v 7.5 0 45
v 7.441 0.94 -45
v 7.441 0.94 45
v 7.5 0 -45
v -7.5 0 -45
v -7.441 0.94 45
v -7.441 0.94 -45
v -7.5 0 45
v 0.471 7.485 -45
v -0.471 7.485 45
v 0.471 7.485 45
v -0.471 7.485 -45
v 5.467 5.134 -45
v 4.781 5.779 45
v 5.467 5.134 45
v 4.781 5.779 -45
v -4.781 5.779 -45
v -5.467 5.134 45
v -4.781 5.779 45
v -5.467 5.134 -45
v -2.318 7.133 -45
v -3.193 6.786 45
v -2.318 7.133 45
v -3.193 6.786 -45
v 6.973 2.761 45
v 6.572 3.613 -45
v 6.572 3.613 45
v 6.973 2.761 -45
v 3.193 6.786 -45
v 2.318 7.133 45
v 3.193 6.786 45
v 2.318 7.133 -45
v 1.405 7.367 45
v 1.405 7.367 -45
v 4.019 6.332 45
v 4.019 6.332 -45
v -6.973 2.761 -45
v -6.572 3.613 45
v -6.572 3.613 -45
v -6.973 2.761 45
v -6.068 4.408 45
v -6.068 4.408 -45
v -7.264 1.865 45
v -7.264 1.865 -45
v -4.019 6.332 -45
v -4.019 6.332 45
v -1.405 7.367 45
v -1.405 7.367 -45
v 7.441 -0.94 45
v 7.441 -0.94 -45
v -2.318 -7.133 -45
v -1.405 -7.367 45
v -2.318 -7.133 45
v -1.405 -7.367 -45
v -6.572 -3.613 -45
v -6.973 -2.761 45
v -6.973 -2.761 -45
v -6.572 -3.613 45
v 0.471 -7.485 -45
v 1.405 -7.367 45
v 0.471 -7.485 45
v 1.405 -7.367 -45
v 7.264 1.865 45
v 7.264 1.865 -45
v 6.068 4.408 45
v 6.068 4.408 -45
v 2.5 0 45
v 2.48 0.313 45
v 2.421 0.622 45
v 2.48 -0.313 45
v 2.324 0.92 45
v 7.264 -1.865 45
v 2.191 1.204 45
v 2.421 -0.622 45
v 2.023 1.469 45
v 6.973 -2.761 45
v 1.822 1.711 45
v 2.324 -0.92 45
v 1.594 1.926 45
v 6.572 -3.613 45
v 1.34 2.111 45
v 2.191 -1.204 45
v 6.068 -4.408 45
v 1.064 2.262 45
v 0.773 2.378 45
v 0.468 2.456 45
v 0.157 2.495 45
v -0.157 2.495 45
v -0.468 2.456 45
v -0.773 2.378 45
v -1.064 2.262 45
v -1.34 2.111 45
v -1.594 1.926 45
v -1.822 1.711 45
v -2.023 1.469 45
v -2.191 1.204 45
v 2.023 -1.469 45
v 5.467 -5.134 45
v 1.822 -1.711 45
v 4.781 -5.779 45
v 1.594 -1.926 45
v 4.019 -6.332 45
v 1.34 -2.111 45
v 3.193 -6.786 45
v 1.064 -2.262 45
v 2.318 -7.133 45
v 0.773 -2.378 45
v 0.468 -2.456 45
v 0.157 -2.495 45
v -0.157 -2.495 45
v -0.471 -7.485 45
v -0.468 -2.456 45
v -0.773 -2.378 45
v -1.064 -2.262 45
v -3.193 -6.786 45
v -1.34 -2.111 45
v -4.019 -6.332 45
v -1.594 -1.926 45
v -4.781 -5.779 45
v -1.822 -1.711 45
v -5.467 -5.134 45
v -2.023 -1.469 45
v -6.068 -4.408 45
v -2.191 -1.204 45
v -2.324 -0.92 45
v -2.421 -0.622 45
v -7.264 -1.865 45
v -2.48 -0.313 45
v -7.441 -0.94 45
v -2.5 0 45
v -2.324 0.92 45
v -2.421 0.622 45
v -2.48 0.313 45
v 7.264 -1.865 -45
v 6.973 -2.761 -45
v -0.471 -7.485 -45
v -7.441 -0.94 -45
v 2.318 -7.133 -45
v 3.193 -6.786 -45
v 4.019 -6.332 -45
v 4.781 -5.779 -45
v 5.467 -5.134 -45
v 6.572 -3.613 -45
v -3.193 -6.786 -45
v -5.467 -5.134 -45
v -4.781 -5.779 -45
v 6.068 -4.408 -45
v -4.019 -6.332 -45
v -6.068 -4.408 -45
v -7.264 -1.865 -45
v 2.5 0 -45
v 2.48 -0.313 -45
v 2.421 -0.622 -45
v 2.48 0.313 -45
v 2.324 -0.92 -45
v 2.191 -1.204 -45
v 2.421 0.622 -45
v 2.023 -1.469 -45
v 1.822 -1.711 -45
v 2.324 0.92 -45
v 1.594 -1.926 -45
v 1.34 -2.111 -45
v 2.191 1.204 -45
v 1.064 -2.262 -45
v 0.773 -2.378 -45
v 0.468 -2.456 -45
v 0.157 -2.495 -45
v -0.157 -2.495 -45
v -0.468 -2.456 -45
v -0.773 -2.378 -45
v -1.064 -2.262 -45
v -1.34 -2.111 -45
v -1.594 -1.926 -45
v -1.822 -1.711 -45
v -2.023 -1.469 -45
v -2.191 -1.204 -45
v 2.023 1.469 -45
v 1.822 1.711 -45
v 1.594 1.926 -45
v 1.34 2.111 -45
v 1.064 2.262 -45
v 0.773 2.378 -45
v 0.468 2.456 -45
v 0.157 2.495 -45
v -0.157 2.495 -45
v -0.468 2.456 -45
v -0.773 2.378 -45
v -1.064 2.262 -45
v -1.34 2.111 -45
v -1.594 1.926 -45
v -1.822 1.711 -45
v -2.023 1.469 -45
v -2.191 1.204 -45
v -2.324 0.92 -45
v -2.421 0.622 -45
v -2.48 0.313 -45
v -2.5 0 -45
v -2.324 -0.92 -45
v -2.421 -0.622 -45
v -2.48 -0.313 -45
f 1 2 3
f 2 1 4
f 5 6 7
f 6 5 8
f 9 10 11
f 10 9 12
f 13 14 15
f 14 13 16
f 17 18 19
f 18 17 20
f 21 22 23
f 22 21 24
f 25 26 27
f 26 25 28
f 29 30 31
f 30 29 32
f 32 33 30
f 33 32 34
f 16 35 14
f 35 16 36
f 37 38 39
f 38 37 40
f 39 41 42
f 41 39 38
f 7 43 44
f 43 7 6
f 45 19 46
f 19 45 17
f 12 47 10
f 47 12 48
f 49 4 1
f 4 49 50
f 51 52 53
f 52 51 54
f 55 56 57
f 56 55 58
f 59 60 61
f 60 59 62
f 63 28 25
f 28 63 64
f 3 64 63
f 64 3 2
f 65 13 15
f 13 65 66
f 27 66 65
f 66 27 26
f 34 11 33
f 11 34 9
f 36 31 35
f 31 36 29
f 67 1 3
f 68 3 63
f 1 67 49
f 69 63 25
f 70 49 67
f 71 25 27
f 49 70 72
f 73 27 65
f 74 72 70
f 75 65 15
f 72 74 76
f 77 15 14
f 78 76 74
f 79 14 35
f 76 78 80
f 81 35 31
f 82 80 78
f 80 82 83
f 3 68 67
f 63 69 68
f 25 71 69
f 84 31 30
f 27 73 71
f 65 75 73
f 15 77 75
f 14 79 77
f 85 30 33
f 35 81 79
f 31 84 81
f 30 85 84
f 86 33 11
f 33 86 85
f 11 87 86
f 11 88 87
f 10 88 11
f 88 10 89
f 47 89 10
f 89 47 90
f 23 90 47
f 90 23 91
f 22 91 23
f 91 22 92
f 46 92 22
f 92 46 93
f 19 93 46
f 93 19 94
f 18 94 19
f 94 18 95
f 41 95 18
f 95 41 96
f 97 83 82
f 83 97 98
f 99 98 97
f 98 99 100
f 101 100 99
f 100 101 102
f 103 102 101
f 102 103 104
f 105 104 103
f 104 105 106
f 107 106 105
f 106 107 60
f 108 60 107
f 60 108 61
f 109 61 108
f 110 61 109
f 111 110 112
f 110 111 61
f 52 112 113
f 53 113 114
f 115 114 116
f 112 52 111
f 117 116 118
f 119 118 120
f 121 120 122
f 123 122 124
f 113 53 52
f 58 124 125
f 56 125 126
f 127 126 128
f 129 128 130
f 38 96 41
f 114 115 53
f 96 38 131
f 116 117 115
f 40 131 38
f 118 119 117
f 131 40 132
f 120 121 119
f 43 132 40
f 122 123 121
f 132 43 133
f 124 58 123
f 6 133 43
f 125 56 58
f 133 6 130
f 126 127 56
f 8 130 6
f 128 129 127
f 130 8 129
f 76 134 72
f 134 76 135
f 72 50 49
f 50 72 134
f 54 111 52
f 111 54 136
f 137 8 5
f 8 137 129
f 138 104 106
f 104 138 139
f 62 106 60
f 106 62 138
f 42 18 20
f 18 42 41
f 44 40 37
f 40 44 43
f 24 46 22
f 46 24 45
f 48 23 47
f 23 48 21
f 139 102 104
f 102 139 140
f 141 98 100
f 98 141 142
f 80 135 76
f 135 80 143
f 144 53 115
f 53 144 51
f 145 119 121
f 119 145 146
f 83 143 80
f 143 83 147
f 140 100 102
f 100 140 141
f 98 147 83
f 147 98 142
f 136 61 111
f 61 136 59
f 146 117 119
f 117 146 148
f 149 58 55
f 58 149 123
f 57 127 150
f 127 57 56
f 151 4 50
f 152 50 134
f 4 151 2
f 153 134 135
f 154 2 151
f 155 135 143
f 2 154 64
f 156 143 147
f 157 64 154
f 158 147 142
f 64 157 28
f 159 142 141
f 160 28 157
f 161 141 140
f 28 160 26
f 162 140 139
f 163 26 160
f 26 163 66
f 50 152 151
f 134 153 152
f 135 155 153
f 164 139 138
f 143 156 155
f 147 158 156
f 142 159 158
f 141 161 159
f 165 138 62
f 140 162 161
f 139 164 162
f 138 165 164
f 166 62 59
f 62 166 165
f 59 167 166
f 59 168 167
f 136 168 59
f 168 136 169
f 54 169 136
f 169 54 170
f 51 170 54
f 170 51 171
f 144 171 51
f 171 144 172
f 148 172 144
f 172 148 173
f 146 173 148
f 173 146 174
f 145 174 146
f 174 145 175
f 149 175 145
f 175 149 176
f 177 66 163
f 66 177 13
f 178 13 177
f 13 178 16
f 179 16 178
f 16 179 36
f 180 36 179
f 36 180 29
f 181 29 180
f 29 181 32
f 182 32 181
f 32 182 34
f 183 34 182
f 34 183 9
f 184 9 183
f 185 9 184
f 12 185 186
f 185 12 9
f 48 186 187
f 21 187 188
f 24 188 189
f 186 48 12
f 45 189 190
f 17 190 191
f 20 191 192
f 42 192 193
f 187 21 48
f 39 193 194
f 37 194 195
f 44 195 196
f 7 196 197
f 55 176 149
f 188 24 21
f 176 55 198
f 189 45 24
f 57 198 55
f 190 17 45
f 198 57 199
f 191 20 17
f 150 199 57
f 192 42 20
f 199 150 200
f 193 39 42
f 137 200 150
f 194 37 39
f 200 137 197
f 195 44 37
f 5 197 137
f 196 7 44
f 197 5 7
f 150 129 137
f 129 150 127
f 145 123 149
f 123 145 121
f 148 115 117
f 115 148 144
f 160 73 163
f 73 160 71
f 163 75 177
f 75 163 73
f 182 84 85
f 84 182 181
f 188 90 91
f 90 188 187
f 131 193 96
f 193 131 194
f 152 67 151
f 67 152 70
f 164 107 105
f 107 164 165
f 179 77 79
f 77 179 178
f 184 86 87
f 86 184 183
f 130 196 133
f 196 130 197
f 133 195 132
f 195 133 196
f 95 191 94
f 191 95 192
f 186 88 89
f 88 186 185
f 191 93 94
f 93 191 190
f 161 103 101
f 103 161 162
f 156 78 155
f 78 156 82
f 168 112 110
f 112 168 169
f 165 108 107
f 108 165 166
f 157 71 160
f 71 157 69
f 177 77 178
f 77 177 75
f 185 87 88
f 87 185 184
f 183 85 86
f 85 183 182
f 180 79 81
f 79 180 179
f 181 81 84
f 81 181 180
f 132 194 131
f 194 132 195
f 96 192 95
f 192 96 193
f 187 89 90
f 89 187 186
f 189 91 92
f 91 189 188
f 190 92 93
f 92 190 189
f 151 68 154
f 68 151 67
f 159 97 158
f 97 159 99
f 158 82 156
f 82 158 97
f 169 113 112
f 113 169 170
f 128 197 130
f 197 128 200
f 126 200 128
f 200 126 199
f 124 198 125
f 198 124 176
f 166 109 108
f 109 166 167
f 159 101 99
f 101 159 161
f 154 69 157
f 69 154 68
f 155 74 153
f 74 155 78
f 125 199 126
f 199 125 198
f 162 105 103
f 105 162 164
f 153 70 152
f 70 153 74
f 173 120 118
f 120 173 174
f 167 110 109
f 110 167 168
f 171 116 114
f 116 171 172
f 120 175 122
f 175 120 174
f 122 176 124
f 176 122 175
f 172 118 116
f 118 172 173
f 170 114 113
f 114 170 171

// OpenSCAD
$fn = 50;


difference() {
	union() {
		translate(v = [0, 0, -45.0000000000]) {
			cylinder(h = 90, r = 7.5000000000);
		}
	}
	union() {
		translate(v = [0, 0, -100.0000000000]) {
			cylinder(h = 200, r = 2.5000000000);
		}
	}
}
